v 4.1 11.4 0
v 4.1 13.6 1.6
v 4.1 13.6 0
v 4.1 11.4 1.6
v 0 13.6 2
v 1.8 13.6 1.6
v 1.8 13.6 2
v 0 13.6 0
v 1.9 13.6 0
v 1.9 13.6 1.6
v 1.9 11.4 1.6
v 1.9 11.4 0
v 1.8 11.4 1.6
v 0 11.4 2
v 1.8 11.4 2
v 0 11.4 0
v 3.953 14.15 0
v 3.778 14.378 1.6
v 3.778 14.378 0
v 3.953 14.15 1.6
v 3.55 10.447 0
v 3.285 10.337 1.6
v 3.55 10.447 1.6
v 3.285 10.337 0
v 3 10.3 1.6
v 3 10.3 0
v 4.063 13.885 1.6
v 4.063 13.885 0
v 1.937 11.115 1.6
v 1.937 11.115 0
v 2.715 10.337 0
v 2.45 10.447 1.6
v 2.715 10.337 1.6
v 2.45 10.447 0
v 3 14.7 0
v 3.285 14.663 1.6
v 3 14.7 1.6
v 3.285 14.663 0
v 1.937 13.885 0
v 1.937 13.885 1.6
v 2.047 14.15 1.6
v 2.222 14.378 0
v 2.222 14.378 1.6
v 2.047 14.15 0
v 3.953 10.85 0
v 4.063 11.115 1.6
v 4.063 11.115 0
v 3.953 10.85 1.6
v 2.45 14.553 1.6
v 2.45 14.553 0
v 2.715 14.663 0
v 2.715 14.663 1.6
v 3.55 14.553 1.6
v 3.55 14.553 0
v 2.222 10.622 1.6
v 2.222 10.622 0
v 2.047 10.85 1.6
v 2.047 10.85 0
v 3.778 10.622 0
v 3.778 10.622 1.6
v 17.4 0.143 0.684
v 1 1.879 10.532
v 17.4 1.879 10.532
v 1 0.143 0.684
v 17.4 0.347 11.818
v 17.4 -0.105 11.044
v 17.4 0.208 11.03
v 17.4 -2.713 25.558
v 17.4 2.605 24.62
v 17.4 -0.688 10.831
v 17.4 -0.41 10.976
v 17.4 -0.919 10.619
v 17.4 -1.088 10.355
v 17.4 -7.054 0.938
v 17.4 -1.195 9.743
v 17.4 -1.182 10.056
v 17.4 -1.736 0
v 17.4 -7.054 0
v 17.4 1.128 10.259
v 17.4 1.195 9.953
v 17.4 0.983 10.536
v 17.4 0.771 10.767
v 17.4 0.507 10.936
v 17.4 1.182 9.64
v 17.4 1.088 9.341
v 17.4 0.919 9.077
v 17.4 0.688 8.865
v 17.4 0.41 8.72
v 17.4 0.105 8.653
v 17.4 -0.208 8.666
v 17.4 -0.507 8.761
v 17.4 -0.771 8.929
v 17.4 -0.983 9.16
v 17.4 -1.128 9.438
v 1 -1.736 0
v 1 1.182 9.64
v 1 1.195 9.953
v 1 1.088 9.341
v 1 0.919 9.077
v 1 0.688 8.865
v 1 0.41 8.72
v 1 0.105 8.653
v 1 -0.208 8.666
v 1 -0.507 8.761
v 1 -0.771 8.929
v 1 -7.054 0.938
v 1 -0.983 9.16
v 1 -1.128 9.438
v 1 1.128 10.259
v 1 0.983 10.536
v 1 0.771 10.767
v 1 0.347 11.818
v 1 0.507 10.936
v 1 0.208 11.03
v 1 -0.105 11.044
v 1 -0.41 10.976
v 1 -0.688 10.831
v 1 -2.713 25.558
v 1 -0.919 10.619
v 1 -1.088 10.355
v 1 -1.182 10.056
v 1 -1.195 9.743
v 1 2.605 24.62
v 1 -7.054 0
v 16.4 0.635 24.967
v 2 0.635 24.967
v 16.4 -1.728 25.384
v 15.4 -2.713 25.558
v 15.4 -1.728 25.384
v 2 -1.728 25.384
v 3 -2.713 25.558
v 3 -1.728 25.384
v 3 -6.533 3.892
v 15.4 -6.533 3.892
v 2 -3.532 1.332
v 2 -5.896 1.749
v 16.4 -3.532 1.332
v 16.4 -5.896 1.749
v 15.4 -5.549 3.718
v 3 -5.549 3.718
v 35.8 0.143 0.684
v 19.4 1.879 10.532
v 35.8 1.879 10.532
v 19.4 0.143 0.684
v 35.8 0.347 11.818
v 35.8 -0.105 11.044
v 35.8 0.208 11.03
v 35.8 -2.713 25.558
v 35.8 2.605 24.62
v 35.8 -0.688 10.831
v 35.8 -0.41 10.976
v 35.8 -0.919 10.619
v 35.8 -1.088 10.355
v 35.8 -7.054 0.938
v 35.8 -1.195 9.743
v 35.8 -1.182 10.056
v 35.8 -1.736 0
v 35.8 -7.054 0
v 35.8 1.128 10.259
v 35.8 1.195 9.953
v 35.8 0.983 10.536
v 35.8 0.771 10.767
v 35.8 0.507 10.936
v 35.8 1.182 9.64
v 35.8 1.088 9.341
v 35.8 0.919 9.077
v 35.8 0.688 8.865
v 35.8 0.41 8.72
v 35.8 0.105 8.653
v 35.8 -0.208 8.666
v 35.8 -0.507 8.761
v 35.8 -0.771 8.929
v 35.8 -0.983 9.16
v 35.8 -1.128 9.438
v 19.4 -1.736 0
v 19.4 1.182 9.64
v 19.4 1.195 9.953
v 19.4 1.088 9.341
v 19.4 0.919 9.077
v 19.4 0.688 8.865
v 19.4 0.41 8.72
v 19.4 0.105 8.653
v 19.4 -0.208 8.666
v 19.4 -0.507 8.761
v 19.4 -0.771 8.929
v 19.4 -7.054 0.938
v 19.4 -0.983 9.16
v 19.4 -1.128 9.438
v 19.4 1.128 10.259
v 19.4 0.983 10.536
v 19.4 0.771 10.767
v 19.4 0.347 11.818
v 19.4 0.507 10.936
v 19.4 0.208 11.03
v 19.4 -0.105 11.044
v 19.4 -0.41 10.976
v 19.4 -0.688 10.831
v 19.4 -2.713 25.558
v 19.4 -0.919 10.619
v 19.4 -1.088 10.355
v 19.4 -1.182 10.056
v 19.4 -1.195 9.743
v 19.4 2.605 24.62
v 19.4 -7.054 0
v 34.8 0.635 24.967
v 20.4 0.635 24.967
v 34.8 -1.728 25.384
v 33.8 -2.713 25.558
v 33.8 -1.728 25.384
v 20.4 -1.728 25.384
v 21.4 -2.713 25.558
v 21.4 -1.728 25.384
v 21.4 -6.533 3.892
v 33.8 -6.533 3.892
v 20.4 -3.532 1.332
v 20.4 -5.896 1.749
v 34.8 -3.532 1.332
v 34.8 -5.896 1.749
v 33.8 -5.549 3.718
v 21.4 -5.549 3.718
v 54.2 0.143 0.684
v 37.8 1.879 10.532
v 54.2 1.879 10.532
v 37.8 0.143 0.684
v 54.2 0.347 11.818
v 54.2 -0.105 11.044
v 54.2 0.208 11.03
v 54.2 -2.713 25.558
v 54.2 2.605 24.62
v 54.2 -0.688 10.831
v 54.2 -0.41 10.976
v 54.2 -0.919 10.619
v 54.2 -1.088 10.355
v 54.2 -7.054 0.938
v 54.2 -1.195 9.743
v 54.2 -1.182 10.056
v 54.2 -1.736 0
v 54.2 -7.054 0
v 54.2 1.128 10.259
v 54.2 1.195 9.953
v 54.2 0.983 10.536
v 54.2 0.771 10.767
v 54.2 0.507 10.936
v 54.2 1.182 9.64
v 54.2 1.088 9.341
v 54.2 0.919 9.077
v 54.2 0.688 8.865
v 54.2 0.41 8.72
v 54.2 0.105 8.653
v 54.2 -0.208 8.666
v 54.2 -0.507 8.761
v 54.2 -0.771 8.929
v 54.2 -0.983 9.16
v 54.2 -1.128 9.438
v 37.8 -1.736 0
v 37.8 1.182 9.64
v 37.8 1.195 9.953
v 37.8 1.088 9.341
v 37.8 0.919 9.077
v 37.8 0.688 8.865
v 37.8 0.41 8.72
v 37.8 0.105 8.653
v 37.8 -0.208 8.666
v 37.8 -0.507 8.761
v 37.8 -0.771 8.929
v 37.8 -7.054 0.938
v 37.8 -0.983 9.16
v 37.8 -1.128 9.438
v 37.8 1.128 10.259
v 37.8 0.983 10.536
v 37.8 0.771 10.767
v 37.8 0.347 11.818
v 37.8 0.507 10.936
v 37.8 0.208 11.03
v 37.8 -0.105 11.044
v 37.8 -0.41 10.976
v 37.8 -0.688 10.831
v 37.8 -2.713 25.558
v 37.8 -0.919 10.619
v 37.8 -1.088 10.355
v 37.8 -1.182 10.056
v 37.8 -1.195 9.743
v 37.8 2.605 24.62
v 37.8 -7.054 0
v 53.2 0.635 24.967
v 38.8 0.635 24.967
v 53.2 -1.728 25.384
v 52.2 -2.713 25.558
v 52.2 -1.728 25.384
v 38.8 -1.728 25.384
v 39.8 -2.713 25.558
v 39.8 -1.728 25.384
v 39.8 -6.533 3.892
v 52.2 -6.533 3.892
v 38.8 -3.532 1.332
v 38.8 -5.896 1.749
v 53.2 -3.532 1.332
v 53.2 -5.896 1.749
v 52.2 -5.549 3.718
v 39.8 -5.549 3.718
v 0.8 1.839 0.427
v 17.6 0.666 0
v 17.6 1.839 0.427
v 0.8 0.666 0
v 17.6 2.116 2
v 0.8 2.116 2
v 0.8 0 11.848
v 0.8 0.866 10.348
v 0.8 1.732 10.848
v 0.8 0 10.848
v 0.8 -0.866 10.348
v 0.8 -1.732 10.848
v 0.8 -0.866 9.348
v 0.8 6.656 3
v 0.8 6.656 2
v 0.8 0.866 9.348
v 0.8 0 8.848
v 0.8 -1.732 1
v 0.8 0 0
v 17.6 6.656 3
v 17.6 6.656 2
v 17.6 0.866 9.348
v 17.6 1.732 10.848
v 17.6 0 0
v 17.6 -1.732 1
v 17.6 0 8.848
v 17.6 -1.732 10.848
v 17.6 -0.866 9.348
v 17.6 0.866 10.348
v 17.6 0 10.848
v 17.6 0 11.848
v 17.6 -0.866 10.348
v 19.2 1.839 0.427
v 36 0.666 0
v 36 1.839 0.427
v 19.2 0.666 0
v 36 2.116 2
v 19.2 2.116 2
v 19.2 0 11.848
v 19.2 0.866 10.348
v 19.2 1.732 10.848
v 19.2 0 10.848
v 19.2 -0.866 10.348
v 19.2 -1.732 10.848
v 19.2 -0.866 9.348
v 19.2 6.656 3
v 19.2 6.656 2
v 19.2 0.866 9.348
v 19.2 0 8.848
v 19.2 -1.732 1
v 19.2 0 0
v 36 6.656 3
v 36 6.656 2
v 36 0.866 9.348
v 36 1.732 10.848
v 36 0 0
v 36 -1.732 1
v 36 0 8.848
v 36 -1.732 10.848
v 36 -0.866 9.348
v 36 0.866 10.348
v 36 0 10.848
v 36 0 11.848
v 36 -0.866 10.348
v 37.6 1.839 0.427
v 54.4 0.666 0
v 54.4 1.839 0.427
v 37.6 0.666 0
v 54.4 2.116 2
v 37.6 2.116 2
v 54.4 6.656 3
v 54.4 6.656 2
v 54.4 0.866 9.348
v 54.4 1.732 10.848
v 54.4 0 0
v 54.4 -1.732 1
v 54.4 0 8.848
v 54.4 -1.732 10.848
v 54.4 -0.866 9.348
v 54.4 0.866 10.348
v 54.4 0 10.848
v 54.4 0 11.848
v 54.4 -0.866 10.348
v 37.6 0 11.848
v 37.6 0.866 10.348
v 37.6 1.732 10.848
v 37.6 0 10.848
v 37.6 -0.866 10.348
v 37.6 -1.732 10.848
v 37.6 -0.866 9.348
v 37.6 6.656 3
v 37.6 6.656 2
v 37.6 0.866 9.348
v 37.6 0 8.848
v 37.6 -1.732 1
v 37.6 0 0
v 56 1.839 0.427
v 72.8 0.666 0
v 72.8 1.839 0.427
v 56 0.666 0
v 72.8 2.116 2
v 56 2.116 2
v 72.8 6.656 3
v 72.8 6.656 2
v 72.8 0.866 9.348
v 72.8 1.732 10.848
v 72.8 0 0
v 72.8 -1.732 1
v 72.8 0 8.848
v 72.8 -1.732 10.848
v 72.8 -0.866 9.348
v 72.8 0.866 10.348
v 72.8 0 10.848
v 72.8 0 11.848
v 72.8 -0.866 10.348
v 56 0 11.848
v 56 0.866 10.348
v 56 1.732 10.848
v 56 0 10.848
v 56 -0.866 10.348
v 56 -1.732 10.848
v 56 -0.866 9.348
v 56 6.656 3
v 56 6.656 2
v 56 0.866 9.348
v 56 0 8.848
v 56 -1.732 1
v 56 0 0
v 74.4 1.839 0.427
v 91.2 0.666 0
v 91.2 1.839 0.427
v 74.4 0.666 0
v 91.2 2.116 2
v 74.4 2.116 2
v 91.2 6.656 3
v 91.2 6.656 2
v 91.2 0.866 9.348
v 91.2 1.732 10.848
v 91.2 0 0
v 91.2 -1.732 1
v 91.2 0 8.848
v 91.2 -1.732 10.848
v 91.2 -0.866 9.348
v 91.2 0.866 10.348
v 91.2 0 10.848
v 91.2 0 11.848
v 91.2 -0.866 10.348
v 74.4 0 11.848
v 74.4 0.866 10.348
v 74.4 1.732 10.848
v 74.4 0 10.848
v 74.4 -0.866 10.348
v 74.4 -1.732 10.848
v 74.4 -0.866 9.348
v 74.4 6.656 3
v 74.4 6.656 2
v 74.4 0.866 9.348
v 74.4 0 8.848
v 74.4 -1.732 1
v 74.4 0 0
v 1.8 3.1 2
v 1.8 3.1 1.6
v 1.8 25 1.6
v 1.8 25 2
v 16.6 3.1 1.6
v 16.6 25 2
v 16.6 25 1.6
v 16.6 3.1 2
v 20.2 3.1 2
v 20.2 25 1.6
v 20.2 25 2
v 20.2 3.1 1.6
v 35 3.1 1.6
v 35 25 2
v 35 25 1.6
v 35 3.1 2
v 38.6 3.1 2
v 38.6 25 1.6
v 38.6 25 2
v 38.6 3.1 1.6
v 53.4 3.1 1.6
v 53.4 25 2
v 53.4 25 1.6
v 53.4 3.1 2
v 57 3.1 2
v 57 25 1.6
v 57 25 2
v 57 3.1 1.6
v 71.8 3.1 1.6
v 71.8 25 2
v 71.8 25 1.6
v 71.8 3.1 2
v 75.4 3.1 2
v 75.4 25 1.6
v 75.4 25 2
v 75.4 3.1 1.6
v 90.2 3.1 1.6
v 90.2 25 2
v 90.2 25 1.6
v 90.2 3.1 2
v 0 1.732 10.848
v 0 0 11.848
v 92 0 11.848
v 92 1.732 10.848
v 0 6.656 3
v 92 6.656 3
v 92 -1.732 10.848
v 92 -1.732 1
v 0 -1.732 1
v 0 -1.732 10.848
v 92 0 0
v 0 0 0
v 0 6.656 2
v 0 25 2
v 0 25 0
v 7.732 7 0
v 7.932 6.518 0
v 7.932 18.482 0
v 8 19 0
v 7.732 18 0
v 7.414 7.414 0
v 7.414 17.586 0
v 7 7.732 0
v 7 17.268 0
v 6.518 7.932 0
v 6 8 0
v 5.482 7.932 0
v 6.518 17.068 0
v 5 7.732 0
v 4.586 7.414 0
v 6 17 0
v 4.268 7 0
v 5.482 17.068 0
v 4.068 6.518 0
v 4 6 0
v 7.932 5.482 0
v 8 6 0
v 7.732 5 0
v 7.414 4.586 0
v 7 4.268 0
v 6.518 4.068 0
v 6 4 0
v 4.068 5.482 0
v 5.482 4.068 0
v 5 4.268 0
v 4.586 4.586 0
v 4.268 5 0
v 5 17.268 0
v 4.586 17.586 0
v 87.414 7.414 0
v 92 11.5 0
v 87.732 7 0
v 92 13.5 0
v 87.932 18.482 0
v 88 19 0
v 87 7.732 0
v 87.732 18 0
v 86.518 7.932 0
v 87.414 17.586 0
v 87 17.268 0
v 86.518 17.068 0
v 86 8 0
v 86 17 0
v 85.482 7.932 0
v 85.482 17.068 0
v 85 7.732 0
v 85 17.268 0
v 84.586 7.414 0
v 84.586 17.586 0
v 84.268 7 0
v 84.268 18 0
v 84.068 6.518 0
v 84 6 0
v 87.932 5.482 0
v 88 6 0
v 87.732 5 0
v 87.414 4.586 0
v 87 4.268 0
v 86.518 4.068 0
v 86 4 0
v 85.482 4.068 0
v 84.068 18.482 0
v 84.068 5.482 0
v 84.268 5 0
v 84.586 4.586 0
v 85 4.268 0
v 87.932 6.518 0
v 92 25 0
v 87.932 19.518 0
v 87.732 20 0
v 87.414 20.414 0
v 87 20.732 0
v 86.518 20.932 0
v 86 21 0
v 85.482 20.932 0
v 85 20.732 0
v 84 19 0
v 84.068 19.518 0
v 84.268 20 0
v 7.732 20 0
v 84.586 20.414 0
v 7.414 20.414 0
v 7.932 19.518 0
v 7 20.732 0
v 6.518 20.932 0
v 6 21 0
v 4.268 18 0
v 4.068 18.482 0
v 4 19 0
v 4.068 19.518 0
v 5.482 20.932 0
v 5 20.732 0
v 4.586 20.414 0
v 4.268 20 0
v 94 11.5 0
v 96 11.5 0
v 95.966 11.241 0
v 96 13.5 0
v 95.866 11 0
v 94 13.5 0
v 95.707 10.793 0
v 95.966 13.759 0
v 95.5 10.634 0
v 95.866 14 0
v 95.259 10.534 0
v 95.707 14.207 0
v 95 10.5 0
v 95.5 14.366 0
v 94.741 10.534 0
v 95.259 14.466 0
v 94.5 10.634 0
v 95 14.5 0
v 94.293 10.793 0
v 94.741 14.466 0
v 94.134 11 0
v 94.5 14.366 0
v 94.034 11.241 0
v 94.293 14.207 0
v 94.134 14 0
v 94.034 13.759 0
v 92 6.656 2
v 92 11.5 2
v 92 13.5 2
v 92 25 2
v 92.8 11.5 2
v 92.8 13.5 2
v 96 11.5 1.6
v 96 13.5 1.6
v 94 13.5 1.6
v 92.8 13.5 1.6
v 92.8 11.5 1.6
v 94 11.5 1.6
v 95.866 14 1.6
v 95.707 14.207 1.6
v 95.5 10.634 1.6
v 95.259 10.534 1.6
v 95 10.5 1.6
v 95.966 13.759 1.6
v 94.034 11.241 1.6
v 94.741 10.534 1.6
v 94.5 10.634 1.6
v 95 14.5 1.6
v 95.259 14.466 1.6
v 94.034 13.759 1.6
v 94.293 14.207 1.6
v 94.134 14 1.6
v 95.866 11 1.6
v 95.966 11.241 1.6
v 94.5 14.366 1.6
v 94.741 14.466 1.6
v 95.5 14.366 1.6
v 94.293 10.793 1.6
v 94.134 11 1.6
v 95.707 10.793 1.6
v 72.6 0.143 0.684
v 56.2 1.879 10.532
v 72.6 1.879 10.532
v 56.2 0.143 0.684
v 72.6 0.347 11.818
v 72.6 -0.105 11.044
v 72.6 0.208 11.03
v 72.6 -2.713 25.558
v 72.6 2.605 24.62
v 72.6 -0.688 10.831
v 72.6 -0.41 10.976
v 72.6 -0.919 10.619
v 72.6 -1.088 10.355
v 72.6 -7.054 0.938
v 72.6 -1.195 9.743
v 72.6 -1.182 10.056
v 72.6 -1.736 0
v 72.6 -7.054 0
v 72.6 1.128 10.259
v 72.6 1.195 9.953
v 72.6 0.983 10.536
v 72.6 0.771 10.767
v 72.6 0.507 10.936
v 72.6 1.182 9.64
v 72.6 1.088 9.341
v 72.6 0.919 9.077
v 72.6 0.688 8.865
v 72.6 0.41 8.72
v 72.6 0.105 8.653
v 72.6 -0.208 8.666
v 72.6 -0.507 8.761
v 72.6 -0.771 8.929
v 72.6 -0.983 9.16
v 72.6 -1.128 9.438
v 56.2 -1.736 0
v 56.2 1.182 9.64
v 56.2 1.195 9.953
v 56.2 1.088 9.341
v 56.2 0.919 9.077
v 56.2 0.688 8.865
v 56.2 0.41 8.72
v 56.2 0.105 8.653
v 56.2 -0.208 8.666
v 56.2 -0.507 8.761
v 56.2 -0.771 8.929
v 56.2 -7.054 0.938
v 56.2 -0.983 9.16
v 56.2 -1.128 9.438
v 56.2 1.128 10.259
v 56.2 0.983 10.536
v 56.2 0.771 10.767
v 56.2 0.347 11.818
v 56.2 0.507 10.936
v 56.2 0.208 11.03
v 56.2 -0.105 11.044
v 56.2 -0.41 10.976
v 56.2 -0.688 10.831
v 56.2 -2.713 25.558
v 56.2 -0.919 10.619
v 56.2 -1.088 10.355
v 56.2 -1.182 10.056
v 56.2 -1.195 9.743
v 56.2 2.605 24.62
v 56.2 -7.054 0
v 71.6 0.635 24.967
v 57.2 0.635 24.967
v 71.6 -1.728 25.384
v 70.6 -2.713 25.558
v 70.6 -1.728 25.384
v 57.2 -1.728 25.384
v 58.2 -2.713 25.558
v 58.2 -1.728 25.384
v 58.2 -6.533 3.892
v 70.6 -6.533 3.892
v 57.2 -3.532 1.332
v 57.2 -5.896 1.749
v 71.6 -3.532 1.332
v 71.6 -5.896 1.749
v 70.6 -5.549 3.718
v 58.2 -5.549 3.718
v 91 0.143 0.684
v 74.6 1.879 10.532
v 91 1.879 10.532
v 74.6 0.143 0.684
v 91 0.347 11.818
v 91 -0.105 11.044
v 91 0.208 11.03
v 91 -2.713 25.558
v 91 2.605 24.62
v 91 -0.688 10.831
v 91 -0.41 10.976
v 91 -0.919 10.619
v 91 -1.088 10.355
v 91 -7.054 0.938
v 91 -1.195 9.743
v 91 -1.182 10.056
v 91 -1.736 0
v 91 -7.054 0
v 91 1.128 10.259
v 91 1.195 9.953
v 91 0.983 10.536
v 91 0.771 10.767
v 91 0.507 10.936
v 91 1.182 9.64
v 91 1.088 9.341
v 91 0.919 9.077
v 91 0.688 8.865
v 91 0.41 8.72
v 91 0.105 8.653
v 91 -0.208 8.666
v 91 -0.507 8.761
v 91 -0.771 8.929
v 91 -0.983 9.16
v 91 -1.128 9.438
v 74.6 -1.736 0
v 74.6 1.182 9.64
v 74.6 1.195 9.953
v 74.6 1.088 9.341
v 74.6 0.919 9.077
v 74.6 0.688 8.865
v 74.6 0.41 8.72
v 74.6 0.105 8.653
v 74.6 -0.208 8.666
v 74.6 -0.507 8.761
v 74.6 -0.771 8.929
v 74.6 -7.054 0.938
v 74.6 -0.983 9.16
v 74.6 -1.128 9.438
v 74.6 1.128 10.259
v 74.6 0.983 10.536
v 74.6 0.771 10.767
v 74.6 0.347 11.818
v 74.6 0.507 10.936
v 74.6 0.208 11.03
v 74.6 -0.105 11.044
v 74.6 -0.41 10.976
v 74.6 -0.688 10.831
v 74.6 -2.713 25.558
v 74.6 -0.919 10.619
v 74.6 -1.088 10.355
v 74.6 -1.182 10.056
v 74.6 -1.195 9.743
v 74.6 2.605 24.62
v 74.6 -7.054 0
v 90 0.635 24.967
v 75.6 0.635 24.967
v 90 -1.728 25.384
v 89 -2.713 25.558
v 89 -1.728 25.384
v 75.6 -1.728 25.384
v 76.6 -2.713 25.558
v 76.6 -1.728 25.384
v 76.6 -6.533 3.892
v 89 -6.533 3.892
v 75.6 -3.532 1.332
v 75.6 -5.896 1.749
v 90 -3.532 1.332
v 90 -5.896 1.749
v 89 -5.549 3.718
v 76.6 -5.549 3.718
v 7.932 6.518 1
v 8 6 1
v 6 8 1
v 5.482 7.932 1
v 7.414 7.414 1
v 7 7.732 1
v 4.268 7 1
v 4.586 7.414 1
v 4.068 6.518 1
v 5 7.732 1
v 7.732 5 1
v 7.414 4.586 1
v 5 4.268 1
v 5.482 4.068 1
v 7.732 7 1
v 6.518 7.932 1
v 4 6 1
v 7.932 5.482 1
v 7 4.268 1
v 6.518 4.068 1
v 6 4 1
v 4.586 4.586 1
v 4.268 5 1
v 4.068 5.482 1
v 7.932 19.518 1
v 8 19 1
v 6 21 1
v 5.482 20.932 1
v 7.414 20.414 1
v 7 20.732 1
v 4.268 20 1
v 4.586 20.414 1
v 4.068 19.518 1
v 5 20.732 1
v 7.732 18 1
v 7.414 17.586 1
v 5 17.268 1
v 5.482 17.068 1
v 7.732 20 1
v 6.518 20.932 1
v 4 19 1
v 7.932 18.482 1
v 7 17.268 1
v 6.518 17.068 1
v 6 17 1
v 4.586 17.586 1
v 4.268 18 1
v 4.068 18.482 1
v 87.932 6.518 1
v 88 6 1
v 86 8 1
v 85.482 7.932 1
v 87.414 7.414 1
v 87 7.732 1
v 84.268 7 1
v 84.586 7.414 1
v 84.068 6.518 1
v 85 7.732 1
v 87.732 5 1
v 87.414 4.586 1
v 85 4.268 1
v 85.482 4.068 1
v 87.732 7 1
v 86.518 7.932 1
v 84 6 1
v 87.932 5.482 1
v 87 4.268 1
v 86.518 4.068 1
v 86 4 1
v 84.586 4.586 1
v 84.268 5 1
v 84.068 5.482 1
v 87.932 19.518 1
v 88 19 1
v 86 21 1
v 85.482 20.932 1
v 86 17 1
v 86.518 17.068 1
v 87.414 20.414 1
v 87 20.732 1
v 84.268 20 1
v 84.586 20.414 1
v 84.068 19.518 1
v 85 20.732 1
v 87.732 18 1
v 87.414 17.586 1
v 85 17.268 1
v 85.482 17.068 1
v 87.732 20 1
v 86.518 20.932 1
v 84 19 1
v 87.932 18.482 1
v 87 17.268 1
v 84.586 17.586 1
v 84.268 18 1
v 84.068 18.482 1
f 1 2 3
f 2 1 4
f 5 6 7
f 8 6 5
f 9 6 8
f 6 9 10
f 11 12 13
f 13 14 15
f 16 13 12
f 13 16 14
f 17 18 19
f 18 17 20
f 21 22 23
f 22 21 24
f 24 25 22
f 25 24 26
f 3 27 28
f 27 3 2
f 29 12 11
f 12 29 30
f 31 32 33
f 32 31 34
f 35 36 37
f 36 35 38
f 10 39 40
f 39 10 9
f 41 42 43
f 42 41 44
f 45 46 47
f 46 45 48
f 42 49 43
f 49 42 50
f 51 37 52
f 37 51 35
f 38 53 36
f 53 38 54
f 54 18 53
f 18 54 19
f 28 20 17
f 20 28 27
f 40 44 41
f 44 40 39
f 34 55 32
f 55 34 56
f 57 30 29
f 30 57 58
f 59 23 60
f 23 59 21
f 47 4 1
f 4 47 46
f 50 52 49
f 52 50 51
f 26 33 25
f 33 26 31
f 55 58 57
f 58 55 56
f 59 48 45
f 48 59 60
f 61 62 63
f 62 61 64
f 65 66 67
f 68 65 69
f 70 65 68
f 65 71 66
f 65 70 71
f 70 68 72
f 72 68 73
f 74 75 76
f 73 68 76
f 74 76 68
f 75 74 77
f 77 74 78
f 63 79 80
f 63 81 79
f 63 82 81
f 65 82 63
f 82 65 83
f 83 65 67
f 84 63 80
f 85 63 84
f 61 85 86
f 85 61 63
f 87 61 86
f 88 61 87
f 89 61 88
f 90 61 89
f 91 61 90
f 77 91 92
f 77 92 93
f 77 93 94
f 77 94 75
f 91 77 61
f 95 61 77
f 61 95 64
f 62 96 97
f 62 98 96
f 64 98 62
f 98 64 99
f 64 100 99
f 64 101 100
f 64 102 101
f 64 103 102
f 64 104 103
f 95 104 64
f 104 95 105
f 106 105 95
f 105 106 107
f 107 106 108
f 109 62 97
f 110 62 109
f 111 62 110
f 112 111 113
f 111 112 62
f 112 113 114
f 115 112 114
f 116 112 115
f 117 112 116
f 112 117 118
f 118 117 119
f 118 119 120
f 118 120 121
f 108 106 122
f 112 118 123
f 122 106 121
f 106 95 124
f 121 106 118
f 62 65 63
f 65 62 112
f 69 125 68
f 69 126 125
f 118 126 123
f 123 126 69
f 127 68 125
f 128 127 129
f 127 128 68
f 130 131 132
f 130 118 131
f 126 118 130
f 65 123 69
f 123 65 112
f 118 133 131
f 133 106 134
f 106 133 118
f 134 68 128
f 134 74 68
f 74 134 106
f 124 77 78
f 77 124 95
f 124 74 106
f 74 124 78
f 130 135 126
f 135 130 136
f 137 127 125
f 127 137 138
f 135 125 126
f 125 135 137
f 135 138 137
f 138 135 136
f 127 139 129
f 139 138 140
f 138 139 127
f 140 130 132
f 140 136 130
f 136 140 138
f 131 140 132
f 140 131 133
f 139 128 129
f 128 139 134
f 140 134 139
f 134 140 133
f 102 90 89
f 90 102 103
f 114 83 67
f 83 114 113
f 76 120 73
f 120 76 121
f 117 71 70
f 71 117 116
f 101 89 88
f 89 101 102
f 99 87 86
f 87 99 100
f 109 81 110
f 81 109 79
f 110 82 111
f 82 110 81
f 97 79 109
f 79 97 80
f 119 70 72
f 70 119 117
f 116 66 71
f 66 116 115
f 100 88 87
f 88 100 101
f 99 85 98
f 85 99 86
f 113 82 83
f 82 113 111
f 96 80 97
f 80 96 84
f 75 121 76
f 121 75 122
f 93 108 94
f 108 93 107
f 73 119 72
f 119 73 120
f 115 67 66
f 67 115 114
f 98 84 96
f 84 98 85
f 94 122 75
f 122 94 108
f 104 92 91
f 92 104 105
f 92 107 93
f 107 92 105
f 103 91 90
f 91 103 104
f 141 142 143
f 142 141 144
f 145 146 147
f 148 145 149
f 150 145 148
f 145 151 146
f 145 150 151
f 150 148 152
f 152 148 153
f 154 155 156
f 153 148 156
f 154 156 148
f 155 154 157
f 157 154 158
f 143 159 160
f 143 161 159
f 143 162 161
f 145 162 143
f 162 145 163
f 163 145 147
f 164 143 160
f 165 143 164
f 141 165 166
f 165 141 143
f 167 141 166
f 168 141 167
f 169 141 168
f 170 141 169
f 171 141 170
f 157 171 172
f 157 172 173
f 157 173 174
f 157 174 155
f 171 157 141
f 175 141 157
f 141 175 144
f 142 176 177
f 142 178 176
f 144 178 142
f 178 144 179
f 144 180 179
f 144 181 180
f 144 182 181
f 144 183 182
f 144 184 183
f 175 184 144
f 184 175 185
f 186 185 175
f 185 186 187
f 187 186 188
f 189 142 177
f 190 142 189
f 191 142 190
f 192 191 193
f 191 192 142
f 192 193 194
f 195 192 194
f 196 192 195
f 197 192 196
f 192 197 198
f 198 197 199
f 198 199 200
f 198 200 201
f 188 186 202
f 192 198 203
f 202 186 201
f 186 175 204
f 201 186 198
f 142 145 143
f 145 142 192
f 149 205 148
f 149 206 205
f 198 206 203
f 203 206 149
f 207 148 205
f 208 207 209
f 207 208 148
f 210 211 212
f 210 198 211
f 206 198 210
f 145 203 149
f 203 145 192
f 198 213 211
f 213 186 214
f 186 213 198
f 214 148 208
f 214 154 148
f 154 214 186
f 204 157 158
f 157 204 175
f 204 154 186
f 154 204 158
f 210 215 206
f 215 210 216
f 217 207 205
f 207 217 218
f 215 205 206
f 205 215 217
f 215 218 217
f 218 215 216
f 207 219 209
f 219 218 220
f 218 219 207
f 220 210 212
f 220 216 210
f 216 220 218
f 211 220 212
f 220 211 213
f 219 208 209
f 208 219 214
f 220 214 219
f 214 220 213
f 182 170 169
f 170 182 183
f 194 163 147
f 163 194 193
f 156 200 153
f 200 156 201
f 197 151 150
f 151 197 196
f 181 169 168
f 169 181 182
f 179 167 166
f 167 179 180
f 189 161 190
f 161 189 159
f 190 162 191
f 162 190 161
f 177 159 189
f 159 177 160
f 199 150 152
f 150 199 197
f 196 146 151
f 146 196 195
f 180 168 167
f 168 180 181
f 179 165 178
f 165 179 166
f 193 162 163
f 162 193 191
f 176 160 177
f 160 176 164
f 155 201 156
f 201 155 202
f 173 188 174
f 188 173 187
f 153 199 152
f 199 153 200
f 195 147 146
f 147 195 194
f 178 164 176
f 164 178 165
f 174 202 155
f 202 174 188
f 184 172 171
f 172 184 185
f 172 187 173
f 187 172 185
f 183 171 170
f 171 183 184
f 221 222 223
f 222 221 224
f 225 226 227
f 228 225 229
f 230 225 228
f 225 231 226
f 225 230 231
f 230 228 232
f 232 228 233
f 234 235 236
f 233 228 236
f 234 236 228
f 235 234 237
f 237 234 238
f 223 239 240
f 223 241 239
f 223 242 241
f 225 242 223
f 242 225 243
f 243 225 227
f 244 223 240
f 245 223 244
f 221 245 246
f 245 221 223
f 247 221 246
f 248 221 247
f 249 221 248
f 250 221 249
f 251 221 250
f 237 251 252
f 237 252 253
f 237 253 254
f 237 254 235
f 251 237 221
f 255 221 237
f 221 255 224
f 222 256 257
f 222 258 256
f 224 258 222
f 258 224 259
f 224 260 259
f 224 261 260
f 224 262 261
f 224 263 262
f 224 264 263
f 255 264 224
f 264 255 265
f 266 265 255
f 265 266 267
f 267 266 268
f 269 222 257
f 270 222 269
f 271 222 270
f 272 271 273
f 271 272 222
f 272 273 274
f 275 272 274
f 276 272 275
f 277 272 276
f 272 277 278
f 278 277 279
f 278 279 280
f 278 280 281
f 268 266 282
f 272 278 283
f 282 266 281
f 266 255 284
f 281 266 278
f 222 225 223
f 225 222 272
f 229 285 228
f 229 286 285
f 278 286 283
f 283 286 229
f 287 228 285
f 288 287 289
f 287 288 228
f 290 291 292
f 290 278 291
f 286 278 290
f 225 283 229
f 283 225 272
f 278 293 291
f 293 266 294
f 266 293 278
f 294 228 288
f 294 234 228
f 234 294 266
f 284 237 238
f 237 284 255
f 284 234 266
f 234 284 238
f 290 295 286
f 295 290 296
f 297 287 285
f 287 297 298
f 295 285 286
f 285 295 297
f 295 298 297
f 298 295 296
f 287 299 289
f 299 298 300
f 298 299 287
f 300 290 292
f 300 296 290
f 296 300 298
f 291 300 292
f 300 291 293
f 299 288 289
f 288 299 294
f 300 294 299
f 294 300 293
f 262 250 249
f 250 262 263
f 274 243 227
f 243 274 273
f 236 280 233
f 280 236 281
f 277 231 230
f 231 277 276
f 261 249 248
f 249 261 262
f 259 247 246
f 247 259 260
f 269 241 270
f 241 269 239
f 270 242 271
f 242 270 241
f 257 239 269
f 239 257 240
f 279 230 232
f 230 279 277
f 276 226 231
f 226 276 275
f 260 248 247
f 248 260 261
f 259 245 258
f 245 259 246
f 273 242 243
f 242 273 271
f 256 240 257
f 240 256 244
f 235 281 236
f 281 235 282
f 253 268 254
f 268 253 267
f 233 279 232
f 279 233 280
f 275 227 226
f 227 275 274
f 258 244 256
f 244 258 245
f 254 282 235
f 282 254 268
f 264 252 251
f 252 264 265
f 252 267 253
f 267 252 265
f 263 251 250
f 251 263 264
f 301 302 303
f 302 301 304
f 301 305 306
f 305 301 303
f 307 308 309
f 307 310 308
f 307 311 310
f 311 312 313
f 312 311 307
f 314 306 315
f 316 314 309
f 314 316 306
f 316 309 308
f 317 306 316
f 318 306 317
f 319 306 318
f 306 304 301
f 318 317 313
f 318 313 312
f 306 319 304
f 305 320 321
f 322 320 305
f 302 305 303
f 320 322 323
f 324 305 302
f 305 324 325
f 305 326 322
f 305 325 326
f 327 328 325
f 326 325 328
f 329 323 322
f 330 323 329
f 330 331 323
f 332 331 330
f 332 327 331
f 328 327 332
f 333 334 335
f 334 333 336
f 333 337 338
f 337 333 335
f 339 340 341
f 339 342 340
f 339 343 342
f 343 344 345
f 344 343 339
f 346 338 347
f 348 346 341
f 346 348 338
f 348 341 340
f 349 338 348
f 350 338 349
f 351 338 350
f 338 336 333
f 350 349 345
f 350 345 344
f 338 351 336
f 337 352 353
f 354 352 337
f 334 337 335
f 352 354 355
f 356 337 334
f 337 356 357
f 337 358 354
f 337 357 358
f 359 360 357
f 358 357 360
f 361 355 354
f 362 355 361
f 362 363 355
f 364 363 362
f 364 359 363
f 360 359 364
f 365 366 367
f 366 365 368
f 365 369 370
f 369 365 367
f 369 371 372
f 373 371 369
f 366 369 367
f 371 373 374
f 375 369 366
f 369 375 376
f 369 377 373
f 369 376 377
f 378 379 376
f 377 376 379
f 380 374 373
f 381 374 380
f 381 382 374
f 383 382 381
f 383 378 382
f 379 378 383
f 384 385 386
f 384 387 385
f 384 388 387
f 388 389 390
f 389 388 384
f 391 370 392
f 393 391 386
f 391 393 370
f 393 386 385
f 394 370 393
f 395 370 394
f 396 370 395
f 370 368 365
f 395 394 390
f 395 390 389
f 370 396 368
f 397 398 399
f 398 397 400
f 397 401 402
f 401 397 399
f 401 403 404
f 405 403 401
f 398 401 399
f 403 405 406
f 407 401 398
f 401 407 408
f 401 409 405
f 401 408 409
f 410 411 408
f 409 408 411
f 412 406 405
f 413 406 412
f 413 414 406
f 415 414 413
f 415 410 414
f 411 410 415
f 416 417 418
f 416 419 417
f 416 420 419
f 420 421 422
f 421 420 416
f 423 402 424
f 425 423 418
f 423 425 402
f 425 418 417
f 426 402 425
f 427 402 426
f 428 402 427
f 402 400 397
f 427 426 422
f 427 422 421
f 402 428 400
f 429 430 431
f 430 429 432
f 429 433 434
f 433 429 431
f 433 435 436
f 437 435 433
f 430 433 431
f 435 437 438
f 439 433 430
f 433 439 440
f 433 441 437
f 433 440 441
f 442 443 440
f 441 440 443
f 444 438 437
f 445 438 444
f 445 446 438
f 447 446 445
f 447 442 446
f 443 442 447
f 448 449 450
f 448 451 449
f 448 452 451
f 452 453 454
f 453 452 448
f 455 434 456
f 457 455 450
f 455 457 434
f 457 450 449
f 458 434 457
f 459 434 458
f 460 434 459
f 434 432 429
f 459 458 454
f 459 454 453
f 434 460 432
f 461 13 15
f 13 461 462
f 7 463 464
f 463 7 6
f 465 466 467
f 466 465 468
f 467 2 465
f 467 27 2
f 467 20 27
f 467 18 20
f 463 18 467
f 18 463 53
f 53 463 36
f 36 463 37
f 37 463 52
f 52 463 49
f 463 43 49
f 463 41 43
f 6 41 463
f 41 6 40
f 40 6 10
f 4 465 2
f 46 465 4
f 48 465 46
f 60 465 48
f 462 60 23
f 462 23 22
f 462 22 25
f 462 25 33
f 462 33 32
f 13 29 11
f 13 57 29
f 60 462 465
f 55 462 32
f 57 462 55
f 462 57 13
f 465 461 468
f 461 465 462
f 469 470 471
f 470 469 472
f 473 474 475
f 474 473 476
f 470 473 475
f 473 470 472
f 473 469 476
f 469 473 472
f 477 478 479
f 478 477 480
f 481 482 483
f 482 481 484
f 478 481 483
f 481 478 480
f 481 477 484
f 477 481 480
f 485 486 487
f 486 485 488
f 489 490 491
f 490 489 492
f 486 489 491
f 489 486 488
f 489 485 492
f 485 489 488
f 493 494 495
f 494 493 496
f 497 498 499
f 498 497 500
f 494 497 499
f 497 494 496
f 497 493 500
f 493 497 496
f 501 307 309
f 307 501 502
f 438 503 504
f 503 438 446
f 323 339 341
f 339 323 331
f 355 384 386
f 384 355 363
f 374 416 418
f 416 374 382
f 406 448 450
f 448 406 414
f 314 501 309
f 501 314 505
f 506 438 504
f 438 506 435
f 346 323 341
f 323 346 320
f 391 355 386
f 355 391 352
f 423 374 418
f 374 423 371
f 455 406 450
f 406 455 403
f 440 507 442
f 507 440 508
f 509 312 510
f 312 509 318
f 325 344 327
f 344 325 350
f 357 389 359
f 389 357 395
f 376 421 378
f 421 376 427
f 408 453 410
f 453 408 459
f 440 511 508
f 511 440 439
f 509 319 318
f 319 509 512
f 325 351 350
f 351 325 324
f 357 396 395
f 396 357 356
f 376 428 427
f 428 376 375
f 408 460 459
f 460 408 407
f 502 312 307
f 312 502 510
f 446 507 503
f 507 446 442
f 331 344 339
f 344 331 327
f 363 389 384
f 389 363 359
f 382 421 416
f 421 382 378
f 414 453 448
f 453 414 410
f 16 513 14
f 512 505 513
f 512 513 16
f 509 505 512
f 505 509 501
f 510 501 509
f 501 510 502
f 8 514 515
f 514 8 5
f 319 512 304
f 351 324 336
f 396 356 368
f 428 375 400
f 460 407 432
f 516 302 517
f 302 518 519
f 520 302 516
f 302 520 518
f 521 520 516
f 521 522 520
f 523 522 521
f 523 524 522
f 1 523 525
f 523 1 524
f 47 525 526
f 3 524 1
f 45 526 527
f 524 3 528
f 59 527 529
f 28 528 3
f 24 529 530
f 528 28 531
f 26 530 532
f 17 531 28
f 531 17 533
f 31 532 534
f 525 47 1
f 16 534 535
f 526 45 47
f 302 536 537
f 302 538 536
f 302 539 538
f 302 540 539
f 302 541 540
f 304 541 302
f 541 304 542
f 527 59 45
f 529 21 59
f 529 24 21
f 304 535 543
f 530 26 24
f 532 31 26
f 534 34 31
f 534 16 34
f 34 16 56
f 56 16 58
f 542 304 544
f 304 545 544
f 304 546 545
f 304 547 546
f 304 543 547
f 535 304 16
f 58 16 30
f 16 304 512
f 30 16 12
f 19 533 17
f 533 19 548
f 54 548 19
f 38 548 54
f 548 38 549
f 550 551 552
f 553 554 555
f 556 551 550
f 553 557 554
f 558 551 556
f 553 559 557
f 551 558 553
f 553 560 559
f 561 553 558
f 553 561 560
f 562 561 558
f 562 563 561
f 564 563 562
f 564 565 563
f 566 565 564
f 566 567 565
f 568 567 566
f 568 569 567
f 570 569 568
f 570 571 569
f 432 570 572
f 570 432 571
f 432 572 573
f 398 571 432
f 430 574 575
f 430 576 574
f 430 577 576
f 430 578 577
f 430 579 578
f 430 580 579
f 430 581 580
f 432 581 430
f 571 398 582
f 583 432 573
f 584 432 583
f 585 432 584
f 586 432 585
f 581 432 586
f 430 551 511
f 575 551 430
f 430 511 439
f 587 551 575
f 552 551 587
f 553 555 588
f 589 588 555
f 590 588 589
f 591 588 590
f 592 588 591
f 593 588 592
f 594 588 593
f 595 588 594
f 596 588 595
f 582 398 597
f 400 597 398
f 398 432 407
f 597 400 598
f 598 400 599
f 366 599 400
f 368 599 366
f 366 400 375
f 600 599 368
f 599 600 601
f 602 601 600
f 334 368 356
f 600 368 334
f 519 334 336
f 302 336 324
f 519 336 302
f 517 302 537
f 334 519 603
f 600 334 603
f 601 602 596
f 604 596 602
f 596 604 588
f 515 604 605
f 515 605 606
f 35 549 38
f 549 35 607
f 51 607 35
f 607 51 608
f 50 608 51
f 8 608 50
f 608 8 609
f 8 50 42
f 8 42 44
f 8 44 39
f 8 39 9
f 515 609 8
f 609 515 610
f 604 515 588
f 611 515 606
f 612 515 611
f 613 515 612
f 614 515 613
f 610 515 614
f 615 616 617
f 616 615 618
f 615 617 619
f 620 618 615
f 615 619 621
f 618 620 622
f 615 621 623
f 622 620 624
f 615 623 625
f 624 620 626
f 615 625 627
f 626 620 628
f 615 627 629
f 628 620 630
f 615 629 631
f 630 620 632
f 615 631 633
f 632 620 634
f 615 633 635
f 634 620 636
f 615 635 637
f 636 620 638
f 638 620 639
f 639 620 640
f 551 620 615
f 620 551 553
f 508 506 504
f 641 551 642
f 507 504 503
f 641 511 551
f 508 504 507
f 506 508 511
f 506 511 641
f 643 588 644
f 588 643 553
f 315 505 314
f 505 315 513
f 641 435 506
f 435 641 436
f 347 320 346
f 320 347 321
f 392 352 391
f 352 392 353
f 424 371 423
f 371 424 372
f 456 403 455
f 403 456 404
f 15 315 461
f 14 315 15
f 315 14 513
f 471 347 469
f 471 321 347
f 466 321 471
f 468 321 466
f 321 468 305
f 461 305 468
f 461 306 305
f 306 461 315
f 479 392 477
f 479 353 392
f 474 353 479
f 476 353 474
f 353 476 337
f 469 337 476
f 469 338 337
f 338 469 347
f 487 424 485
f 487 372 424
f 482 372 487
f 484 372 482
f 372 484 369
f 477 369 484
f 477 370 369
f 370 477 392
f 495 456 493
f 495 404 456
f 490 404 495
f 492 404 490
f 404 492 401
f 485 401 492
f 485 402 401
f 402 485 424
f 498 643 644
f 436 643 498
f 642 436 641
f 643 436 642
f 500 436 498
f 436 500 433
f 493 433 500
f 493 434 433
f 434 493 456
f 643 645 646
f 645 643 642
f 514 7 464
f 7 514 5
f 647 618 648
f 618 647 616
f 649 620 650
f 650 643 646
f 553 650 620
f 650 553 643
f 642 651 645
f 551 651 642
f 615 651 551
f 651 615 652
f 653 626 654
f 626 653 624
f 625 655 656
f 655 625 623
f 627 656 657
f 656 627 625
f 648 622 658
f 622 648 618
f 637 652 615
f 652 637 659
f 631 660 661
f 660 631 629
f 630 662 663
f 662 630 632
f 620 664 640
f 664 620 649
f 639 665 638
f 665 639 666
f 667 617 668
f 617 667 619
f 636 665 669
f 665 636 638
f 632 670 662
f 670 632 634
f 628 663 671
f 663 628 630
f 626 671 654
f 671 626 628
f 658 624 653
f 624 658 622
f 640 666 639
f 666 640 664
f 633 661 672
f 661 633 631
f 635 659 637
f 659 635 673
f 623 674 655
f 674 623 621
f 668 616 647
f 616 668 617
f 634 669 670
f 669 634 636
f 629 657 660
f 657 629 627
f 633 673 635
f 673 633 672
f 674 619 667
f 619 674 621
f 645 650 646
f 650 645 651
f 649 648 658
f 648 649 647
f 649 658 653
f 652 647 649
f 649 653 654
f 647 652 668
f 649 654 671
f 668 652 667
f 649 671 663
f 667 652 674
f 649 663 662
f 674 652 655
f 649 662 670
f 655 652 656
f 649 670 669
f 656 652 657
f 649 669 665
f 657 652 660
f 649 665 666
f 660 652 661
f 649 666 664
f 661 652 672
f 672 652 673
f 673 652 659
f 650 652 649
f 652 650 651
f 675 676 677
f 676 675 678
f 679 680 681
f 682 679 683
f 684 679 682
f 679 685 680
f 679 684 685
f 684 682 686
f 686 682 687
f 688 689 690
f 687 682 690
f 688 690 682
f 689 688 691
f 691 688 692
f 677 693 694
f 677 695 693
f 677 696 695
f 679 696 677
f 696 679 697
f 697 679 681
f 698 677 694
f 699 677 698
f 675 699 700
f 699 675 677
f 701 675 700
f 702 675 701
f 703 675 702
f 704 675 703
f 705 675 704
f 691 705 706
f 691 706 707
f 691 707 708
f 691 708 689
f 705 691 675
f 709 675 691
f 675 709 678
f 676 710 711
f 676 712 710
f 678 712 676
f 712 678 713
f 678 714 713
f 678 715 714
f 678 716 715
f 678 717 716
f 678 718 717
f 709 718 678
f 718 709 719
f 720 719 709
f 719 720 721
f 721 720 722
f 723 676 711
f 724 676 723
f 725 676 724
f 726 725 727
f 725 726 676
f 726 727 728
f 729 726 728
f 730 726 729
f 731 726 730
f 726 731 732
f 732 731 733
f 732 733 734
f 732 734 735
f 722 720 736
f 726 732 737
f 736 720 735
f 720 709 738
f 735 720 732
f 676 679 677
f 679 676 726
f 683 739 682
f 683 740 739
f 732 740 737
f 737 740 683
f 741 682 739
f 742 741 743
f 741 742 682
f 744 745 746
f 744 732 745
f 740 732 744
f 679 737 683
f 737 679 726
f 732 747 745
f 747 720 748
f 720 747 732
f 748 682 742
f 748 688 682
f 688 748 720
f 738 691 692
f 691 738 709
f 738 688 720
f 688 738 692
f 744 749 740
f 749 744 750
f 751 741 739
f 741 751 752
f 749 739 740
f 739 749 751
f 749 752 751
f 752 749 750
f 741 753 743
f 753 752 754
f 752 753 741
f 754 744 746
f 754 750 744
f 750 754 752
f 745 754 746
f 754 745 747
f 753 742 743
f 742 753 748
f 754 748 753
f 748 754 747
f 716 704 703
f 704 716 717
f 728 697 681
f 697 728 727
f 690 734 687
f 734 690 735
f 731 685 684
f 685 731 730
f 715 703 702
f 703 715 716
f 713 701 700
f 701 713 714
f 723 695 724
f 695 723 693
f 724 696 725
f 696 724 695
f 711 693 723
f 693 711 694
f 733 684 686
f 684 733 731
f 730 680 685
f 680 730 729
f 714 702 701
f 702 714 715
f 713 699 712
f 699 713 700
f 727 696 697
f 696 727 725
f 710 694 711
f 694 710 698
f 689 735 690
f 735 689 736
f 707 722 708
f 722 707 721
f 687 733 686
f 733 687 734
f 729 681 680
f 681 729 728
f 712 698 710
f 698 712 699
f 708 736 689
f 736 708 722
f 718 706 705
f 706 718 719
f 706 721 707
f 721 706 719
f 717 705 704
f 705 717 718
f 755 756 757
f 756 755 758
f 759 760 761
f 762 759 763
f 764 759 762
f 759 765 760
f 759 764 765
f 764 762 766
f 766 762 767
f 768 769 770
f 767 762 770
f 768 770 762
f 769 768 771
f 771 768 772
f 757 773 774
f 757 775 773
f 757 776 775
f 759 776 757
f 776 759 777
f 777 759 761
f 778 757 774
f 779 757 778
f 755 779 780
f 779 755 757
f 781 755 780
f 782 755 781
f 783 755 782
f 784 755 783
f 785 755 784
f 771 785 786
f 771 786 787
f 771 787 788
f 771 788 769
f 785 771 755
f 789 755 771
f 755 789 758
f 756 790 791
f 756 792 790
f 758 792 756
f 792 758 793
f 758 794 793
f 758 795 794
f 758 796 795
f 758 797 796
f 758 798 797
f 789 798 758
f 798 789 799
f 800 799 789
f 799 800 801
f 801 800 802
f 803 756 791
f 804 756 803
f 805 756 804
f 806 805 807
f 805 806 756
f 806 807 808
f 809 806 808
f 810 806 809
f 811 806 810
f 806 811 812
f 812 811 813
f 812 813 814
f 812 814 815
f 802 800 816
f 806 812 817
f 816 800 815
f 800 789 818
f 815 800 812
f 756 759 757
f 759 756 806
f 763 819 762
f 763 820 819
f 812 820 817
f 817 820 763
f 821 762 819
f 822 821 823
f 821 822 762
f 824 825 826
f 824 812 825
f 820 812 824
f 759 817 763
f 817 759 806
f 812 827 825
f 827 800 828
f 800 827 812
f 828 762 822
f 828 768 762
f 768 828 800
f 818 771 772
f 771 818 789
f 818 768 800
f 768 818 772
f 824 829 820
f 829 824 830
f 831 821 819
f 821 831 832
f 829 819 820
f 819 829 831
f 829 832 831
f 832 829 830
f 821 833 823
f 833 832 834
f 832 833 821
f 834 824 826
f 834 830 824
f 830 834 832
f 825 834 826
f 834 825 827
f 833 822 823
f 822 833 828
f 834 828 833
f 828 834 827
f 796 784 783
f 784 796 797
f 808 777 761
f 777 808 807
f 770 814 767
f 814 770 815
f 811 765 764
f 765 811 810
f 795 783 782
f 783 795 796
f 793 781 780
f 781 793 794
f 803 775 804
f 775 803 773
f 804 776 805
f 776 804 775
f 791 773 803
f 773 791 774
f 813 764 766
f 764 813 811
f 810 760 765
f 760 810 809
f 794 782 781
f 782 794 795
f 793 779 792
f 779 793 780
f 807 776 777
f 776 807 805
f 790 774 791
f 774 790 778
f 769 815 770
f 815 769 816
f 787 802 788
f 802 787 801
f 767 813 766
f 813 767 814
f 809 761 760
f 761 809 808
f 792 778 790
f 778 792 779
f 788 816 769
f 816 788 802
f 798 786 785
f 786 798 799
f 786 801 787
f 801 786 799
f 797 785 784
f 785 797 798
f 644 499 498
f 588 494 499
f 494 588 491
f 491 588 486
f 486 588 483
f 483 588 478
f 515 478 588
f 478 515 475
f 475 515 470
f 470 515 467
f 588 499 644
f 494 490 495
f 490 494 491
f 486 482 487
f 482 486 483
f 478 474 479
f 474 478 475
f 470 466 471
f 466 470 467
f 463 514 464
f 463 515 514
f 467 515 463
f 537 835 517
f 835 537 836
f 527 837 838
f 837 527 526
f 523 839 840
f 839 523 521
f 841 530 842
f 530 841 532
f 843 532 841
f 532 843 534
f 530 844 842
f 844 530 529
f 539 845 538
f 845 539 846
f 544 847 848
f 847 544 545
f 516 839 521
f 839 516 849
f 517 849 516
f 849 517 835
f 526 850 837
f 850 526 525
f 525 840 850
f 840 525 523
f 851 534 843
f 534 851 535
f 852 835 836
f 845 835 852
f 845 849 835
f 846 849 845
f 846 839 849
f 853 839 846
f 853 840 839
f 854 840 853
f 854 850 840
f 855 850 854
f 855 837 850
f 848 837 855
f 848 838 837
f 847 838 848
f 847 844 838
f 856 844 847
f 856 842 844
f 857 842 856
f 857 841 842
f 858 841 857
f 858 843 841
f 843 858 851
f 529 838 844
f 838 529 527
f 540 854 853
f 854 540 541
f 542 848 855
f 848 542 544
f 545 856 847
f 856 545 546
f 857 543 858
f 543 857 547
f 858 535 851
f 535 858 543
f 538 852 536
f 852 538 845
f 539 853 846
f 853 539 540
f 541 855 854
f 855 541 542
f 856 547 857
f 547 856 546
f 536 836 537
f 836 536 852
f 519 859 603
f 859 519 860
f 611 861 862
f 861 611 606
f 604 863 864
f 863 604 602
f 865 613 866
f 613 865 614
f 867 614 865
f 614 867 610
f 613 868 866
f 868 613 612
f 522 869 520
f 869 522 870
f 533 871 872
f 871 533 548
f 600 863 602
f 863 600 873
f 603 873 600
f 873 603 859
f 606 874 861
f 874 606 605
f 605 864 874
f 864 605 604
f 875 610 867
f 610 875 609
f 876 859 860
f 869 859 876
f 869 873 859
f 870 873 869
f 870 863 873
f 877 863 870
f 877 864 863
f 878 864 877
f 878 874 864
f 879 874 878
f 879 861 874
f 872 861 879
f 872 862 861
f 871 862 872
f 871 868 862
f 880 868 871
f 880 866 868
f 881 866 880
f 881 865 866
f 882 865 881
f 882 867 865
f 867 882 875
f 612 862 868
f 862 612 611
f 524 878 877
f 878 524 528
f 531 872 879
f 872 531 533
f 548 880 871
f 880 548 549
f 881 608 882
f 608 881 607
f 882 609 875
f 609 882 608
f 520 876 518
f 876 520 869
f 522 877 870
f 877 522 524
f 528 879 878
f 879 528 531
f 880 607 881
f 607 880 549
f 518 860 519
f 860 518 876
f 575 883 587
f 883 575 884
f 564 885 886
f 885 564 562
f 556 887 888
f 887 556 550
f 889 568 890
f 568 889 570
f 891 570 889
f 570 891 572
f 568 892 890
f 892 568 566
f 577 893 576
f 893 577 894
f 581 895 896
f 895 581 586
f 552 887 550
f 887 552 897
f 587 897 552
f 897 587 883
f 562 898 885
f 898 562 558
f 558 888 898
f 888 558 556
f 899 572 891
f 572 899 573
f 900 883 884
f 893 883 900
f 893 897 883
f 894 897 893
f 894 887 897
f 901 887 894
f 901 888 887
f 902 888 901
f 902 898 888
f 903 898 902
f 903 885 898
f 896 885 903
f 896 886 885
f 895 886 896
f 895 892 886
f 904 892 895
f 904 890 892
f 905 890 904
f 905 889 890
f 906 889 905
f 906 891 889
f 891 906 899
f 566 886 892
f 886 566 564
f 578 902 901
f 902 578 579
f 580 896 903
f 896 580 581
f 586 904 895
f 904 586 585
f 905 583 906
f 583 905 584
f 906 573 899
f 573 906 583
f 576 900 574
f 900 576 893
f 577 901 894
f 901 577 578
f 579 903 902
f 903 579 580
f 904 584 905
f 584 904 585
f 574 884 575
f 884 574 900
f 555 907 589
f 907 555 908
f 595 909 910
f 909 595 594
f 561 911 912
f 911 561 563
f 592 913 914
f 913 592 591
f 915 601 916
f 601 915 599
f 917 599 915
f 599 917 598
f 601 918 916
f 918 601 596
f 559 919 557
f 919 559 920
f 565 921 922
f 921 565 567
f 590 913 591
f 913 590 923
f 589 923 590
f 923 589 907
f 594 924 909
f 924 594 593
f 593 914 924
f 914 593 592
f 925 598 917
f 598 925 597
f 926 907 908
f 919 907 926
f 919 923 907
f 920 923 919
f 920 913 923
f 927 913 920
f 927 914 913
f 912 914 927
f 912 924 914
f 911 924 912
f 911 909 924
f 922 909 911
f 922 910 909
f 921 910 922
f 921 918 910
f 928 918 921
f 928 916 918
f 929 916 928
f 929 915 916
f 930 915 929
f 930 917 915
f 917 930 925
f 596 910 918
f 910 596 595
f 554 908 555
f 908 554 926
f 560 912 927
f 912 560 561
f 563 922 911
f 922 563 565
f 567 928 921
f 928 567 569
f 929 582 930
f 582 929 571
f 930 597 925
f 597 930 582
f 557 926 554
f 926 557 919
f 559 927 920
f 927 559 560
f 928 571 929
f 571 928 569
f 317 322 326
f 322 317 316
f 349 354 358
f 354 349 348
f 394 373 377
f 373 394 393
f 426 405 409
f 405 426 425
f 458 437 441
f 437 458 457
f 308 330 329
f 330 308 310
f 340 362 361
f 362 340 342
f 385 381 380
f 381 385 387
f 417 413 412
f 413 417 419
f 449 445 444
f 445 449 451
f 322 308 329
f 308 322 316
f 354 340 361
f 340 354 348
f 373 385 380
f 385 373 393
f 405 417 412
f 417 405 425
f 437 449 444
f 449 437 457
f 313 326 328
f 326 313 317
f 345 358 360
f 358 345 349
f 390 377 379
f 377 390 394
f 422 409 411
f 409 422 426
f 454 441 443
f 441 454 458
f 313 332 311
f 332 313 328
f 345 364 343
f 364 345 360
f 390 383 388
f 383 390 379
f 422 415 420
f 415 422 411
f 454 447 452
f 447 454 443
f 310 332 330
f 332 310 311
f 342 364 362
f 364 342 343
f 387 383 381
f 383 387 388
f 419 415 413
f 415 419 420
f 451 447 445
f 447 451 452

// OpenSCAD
tolerance = .2;
shift = 1;

tile_width = 14;
tile_height = 45;
tile_depth = 2;

holder_edge = 1;
holder_count = 5;
holder_angle = 10;
holder_connector_radius = 2;
holder_connector_offset = 8;
holder_width = tile_width + 2 * holder_edge + 2 * tolerance;
holder_height = 25;
holder_depth = tile_depth + 3 * holder_edge + 2 * tolerance;

base_link = 4;
base_foot = 2;
base_slot = 22 + 2 * tolerance;
base_spacing = 2;
base_rod_radius = 1;
base_rod_offset = cos(holder_angle) * (holder_connector_radius + holder_connector_offset);
base_width = holder_count * (holder_width + base_spacing);
base_height = 2;
base_depth = holder_height;

color("teal") base();
color("violet") {
  for (i = [0:holder_count - 1]) {
    translate([(i + .5) * (holder_width + base_spacing), 0, base_rod_offset]) rotate([-holder_angle, 0, 0]) holder();
  }
}

module base() {
  translate([0, 0, base_rod_offset]) rotate([0, 90, 0]) cylinder(r=base_rod_radius, h=base_width, $fn=6);
  difference() {
    cube([base_width, base_depth, base_height]);
    translate([3 * base_link / 4, base_depth / 2, base_height / 2]) scale(1 + tolerance / 2) link();

    for (i = [0:holder_count - 1]) {
      translate([(i + .5) * (holder_width + base_spacing), 0, cos(holder_angle) * holder_connector_radius]) rotate([-holder_angle, 0, 0]) rotate([0, 90, 0]) cylinder(r=holder_connector_radius + 2 * tolerance, h=holder_width + 2 * tolerance, center=true, $fn=6);
    }

    for (i = [0:holder_count - 1]) {
      translate([(i + .5) * (holder_width + base_spacing), base_depth - base_slot / 2 + shift, base_height]) cube([tile_width + 4 * tolerance, base_slot + shift, 4 * tolerance], center=true);
    }

    translate([3 * base_foot, 3 * base_foot, -shift]) cylinder(r=base_foot, h=base_height / 2 + shift, $fn=24);
    translate([3 * base_foot, base_depth - 3 * base_foot, -shift]) cylinder(r=base_foot, h=base_height / 2 + shift, $fn=24);
    translate([base_width - 3 * base_foot, 3 * base_foot, -shift]) cylinder(r=base_foot, h=base_height / 2 + shift, $fn=24);
    translate([base_width - 3 * base_foot, base_depth - 3 * base_foot, -shift]) cylinder(r=base_foot, h=base_height / 2 + shift, $fn=24);
  }

  difference() {
    hull() {
      translate([0, 0, holder_connector_radius]) rotate([0, 90, 0]) cylinder(r=holder_connector_radius, h=base_width, $fn=6);
      translate([0, base_rod_offset / 2, holder_connector_radius]) rotate([0, 90, 0]) cylinder(r=holder_connector_radius, h=base_width, $fn=6);
      translate([0, 0, base_rod_offset]) rotate([0, 90, 0]) cylinder(r=holder_connector_radius, h=base_width, $fn=6);
    }

    for (i = [0:holder_count - 1]) {
      hull() {
        translate([(i + .5) * (holder_width + base_spacing), 0, holder_connector_radius]) rotate([0, 90, 0]) cylinder(r=holder_connector_radius + shift, h=holder_width + 2 * tolerance, center=true, $fn=6);
        translate([(i + .5) * (holder_width + base_spacing), base_rod_offset / 2, holder_connector_radius]) rotate([0, 90, 0]) cylinder(r=holder_connector_radius + shift, h=holder_width + 2 * tolerance, center=true, $fn=6);
        translate([(i + .5) * (holder_width + base_spacing), 0, base_rod_offset]) rotate([0, 90, 0]) cylinder(r=holder_connector_radius + shift, h=holder_width + 2 * tolerance, center=true, $fn=6);
      }
    }
  }

  difference() {
    translate([base_width + 3 * base_link / 4, base_depth / 2, base_height / 2]) link();
    translate([base_width + base_link / 2 + base_spacing / 2 - tolerance, base_depth / 2, base_height]) cube([base_link, base_link + shift, 4 * tolerance], center=true);
  }
}

module holder() {
  difference() {
    union() {
      hull() {
        rotate([0, 90, 0]) cylinder(r=holder_connector_radius, h=holder_width, center=true, $fn=6);
        translate([0, 0, -holder_connector_offset]) rotate([0, 90, 0]) cylinder(r=holder_connector_radius, h=holder_width, center=true, $fn=6);
      }

      translate([0, -holder_depth / 2, holder_height / 2 - (holder_connector_offset + holder_connector_radius)]) cube([holder_width, holder_depth, holder_height], center=true);
      translate([0, -holder_depth / 2, -(holder_connector_offset + holder_connector_radius)]) rotate([holder_angle, 0, 0]) cube([holder_width, cos(holder_angle) * holder_depth, sin(holder_angle) * holder_depth], center=true);
    }

    rotate([0, 90, 0]) cylinder(r=base_rod_radius + tolerance, h=holder_width + shift, center=true, $fn=24);
    translate([0, -holder_depth / 2, holder_height / 2 - (holder_connector_offset + holder_connector_radius)]) {
      translate([0, -holder_edge / 2, holder_edge]) cube([holder_width - 2 * holder_edge, holder_depth - 3 * holder_edge, holder_height], center=true);
      translate([0, -2 * holder_edge, 3 * holder_edge]) cube([holder_width - 4 * holder_edge, holder_depth, holder_height], center=true);
    }
  }
}

module link() {
  translate([-base_link / 4, 0, 0]) {
    cube([base_link, base_link / 2, base_height], center=true);
    hull() {
      translate([base_link / 4, -base_link / 4, 0]) cylinder(d=base_link / 2, h=base_height, center=true, $fn=24);
      translate([base_link / 4, base_link / 4, 0]) cylinder(d=base_link / 2, h=base_height, center=true, $fn=24);
    }
  }
}
